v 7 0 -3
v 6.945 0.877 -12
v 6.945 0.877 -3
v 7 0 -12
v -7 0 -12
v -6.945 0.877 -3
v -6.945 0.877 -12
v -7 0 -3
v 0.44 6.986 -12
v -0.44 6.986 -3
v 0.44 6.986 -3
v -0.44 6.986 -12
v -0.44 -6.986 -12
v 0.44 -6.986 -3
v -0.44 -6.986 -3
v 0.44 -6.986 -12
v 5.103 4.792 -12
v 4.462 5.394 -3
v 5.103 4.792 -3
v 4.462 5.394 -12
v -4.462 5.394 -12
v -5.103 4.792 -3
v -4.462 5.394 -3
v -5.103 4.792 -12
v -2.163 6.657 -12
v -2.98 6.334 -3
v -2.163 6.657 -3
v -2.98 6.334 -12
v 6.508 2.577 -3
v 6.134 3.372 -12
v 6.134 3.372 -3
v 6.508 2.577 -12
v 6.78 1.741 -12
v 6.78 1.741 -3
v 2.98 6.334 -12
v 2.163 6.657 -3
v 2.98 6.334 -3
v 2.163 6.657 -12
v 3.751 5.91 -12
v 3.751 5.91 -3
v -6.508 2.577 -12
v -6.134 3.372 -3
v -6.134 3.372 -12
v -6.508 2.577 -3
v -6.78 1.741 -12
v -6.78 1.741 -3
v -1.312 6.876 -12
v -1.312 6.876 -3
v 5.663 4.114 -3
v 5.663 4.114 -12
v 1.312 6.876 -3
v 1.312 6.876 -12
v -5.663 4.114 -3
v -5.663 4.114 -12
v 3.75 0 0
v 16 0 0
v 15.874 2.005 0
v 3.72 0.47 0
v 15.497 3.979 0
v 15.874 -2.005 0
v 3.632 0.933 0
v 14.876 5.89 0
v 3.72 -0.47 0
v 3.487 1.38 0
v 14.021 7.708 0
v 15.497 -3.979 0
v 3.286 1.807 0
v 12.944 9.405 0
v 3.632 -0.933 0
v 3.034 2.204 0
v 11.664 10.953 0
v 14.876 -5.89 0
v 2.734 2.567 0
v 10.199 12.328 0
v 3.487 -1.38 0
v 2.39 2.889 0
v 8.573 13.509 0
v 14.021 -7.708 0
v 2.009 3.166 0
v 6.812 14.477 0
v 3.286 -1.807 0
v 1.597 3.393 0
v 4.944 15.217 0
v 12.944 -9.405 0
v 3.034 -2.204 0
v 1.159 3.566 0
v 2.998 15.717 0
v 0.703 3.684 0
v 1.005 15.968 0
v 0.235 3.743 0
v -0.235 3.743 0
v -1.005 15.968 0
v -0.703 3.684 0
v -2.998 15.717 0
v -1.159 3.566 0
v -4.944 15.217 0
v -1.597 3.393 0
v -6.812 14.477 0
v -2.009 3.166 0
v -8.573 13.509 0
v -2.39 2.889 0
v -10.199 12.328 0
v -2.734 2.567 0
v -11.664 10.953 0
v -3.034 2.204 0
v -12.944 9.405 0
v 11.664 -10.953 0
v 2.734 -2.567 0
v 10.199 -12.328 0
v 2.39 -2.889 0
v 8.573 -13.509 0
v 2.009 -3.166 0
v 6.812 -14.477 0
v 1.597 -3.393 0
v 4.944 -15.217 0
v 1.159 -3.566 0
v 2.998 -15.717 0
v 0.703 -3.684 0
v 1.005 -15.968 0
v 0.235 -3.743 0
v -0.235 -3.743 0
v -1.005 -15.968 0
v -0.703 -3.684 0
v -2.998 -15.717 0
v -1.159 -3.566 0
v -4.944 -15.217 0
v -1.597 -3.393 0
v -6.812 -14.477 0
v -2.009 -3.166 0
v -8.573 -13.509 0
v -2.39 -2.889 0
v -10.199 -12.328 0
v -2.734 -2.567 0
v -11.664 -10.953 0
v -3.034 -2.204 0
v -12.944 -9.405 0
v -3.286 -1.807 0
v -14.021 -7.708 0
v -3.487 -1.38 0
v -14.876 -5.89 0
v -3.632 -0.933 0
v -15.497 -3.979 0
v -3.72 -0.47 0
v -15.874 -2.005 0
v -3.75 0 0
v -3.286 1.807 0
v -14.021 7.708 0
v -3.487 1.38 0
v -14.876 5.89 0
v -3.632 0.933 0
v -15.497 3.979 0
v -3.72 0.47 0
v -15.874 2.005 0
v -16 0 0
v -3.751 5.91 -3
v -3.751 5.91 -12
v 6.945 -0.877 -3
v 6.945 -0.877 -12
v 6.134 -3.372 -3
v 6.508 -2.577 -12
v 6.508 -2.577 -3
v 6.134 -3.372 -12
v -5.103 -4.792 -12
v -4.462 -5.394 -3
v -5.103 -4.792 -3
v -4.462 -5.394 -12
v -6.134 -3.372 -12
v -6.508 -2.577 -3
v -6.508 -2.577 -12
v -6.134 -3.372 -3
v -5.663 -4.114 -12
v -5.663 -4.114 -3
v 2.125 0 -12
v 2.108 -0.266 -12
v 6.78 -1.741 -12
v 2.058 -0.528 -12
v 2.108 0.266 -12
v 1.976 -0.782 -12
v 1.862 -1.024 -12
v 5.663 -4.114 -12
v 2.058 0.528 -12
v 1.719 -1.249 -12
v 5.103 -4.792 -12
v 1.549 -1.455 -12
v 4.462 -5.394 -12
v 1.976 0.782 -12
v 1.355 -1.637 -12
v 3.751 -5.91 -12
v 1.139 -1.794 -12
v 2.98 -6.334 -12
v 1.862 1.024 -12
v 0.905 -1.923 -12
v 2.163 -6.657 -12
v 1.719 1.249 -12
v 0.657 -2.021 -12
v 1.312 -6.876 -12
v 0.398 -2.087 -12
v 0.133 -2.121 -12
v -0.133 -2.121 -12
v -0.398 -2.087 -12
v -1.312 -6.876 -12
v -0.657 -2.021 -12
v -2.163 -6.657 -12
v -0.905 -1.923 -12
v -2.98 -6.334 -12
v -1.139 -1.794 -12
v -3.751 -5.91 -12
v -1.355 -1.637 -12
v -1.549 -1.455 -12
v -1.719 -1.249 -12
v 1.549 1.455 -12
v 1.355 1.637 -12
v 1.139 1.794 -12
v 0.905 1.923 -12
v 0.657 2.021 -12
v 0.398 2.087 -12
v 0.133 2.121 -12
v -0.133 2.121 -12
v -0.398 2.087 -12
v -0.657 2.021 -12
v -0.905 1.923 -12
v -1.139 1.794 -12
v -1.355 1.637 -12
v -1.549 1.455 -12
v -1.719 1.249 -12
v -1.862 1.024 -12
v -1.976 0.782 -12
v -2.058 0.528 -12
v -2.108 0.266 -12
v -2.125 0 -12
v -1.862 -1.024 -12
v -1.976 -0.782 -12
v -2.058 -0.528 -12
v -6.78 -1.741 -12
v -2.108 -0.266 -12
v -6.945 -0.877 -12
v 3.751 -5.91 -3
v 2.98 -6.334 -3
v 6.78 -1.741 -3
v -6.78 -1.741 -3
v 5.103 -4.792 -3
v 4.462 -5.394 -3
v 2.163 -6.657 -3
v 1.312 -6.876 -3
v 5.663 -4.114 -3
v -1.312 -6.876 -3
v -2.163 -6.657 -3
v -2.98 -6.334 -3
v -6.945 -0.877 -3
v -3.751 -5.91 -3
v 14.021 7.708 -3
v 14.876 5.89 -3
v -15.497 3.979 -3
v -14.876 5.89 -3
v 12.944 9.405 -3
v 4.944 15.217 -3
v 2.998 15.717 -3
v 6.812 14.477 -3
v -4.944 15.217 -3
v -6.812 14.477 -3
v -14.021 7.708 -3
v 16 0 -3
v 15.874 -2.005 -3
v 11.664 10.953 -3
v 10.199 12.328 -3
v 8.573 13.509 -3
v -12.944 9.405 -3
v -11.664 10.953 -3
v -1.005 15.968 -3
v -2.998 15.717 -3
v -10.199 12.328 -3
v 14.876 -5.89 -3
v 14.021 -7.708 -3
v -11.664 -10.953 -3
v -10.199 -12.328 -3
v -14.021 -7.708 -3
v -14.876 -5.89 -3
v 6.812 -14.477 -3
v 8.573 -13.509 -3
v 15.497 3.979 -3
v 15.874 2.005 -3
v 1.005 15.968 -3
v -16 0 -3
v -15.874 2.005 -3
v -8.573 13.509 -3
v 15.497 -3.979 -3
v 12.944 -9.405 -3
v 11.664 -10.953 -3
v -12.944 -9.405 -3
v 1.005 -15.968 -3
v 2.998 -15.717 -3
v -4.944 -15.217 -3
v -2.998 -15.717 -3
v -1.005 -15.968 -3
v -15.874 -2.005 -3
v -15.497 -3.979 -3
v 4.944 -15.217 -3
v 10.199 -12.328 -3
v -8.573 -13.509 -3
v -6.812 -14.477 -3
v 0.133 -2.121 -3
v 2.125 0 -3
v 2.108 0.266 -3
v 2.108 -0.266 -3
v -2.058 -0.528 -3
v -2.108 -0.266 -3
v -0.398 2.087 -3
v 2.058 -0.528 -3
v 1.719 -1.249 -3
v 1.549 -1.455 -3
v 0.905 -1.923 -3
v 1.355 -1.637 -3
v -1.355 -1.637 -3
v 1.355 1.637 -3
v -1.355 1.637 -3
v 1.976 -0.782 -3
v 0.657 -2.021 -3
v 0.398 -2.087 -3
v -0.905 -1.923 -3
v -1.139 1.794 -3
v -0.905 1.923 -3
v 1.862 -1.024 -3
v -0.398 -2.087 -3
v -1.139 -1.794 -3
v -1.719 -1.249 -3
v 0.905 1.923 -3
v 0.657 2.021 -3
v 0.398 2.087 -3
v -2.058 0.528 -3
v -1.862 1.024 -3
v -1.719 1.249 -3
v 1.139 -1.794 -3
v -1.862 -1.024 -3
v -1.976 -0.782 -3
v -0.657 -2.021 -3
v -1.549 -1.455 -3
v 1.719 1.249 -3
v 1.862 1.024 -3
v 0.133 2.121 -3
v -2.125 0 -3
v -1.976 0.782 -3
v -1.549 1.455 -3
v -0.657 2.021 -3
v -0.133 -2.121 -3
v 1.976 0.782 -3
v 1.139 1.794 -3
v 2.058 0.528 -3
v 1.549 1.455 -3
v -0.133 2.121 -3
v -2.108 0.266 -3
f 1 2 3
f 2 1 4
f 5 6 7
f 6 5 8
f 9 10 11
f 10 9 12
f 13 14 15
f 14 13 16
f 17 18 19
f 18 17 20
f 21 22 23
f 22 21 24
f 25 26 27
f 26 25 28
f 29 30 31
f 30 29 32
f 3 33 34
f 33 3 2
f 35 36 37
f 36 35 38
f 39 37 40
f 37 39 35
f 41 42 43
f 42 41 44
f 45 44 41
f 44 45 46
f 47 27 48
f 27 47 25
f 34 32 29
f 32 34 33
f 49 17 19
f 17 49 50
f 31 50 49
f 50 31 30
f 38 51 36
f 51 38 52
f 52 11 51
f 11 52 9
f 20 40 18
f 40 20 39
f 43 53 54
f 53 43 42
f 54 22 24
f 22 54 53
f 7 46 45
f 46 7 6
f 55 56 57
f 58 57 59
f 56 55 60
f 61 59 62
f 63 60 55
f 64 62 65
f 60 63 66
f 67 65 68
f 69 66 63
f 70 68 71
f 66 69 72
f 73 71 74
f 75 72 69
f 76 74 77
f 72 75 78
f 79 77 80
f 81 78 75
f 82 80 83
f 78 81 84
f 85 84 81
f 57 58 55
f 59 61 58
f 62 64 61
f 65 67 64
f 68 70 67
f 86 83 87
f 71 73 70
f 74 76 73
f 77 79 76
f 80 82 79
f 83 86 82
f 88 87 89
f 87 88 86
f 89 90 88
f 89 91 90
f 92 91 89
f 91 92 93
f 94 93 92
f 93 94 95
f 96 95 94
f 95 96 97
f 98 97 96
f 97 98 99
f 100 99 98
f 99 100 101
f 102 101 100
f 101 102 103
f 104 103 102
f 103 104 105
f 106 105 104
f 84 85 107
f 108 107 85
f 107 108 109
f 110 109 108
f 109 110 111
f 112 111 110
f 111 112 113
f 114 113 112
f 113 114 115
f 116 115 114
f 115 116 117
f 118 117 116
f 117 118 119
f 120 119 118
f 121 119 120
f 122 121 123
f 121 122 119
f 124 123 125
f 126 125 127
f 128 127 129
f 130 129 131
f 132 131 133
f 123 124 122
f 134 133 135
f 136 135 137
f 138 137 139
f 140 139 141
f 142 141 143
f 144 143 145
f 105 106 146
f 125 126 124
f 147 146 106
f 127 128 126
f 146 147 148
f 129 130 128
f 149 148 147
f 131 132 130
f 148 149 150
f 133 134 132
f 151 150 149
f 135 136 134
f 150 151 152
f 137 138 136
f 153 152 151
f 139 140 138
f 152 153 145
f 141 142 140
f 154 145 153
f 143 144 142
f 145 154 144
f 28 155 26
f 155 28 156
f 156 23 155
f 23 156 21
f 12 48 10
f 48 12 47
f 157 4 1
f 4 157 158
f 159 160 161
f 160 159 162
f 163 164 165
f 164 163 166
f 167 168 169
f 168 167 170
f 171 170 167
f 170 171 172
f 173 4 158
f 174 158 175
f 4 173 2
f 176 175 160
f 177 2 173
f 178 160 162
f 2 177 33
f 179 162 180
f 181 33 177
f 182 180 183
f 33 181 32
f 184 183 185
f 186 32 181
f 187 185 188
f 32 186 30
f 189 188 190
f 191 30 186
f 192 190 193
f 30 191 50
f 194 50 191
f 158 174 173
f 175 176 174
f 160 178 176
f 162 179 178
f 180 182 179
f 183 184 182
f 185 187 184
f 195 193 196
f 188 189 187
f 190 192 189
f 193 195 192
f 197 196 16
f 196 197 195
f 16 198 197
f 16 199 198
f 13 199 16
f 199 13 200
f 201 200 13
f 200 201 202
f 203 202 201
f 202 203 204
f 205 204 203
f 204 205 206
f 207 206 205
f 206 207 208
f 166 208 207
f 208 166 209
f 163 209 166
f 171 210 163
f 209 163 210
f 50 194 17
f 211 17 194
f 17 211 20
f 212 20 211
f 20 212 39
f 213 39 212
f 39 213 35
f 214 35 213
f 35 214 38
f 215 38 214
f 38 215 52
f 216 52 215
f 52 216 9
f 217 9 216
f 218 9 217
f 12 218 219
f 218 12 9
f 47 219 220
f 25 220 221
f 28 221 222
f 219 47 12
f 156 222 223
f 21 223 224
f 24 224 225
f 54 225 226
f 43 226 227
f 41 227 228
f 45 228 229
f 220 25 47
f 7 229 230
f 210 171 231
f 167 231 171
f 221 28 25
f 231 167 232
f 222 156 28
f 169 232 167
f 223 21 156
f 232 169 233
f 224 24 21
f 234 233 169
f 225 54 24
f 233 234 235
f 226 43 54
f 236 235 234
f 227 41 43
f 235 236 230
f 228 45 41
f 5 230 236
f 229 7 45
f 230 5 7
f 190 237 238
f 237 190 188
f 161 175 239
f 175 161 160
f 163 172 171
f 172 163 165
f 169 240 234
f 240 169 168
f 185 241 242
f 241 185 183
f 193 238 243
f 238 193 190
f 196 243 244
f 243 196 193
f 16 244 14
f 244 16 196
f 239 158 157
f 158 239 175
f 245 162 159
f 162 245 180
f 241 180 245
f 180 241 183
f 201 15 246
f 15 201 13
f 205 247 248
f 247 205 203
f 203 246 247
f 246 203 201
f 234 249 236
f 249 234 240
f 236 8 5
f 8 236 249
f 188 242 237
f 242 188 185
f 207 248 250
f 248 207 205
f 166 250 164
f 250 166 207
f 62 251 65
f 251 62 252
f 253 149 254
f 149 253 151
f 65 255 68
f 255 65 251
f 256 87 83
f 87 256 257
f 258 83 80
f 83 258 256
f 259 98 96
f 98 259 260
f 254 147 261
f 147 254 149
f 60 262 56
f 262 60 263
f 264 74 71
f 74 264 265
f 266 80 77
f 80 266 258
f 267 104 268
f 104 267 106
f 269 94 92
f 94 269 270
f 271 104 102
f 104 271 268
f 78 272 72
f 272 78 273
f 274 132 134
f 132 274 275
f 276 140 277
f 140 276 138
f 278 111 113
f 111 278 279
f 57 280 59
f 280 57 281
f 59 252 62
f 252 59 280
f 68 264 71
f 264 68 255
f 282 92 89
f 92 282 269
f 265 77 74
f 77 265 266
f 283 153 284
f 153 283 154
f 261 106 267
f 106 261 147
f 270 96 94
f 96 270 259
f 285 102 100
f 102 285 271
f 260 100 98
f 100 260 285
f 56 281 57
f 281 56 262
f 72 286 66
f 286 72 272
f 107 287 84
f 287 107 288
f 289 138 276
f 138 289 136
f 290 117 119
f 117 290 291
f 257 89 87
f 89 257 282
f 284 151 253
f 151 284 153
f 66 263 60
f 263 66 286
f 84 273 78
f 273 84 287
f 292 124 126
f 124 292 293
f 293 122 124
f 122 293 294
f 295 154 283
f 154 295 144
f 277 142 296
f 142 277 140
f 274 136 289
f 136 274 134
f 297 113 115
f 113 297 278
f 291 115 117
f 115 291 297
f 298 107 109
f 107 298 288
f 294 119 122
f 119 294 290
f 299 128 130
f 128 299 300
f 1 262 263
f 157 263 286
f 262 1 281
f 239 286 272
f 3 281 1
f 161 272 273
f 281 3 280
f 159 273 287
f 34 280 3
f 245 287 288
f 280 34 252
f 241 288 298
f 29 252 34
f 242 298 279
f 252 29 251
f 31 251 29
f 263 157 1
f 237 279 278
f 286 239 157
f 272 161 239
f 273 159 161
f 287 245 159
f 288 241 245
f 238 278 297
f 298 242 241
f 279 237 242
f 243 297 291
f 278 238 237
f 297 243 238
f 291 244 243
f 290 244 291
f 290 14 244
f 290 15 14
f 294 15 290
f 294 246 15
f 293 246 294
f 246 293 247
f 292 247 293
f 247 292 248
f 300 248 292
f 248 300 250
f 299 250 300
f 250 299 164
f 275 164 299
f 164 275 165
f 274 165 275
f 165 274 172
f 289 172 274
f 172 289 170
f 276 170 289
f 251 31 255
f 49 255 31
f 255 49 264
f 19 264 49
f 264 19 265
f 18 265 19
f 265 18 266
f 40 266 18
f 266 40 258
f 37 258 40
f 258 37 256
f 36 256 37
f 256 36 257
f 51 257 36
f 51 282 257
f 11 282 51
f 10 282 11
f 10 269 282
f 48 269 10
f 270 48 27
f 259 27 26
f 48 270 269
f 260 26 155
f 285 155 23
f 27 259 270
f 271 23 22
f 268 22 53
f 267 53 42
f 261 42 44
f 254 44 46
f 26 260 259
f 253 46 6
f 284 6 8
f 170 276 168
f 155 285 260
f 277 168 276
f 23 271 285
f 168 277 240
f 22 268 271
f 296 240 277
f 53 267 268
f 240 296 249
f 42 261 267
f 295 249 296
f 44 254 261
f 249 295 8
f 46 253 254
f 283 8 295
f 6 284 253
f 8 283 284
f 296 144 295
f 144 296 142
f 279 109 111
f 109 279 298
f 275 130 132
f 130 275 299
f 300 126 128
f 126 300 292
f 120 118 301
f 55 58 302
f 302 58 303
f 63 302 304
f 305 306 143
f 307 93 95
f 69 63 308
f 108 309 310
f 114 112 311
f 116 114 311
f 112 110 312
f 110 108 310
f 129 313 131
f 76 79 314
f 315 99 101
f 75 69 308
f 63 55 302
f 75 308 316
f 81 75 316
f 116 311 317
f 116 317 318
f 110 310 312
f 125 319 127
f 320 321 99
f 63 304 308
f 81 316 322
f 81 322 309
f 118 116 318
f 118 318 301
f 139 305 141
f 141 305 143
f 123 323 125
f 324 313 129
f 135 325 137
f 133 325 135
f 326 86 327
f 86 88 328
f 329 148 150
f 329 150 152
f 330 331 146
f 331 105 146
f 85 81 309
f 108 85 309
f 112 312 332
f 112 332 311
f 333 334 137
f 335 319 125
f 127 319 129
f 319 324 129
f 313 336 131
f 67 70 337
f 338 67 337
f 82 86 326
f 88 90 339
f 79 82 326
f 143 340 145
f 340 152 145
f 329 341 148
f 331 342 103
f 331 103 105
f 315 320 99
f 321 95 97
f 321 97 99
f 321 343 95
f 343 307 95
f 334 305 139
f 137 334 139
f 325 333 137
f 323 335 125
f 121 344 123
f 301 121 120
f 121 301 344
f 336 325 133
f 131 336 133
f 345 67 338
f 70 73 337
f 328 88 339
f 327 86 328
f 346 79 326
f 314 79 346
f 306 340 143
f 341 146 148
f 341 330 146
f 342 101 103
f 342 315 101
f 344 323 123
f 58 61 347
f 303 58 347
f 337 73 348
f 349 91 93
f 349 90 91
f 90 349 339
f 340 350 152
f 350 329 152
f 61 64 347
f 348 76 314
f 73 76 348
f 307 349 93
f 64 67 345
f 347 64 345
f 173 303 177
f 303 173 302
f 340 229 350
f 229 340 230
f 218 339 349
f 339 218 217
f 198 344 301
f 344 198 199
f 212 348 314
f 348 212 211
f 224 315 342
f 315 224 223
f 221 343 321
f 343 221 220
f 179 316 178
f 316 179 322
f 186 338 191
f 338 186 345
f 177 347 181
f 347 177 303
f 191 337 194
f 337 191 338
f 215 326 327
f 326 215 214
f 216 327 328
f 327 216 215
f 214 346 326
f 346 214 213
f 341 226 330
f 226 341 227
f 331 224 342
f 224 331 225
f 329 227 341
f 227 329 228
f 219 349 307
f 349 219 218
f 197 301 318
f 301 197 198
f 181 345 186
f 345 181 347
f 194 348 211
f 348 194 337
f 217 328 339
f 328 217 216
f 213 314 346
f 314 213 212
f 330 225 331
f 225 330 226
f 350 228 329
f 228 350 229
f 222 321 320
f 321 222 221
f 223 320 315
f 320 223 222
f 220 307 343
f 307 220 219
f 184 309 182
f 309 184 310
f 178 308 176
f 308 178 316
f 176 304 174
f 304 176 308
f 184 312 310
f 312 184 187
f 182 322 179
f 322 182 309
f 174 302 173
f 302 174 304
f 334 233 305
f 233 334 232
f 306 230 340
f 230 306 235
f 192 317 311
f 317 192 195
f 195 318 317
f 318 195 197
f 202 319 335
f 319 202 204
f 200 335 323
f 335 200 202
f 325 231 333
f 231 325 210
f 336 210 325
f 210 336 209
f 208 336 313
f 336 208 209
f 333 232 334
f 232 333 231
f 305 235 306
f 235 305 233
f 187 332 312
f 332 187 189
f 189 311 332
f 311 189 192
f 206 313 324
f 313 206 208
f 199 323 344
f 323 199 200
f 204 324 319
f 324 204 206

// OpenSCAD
$fn = 50;


difference() {
	union() {
		translate(v = [0, 0, -12.0000000000]) {
			cylinder(h = 12, r = 7.0000000000);
		}
		translate(v = [0, 0, -3.0000000000]) {
			cylinder(h = 3, r = 16.0000000000);
		}
	}
	union() {
		translate(v = [0, 0, 0]) {
			rotate(a = [0, 0, 0]) {
				difference() {
					union() {
						#translate(v = [0, 0, -12.0000000000]) {
							cylinder(h = 12, r = 2.0000000000);
						}
						#translate(v = [0, 0, -3]) {
							cylinder(h = 3, r = 7.0000000000, r1 = 2.1250000000, r2 = 3.7500000000);
						}
						#translate(v = [0, 0, -12.0000000000]) {
							cylinder(h = 12, r = 2.1250000000);
						}
						#translate(v = [0, 0, -12.0000000000]) {
							cylinder(h = 12, r = 2.0000000000);
						}
					}
					union();
				}
			}
		}
	}
}
